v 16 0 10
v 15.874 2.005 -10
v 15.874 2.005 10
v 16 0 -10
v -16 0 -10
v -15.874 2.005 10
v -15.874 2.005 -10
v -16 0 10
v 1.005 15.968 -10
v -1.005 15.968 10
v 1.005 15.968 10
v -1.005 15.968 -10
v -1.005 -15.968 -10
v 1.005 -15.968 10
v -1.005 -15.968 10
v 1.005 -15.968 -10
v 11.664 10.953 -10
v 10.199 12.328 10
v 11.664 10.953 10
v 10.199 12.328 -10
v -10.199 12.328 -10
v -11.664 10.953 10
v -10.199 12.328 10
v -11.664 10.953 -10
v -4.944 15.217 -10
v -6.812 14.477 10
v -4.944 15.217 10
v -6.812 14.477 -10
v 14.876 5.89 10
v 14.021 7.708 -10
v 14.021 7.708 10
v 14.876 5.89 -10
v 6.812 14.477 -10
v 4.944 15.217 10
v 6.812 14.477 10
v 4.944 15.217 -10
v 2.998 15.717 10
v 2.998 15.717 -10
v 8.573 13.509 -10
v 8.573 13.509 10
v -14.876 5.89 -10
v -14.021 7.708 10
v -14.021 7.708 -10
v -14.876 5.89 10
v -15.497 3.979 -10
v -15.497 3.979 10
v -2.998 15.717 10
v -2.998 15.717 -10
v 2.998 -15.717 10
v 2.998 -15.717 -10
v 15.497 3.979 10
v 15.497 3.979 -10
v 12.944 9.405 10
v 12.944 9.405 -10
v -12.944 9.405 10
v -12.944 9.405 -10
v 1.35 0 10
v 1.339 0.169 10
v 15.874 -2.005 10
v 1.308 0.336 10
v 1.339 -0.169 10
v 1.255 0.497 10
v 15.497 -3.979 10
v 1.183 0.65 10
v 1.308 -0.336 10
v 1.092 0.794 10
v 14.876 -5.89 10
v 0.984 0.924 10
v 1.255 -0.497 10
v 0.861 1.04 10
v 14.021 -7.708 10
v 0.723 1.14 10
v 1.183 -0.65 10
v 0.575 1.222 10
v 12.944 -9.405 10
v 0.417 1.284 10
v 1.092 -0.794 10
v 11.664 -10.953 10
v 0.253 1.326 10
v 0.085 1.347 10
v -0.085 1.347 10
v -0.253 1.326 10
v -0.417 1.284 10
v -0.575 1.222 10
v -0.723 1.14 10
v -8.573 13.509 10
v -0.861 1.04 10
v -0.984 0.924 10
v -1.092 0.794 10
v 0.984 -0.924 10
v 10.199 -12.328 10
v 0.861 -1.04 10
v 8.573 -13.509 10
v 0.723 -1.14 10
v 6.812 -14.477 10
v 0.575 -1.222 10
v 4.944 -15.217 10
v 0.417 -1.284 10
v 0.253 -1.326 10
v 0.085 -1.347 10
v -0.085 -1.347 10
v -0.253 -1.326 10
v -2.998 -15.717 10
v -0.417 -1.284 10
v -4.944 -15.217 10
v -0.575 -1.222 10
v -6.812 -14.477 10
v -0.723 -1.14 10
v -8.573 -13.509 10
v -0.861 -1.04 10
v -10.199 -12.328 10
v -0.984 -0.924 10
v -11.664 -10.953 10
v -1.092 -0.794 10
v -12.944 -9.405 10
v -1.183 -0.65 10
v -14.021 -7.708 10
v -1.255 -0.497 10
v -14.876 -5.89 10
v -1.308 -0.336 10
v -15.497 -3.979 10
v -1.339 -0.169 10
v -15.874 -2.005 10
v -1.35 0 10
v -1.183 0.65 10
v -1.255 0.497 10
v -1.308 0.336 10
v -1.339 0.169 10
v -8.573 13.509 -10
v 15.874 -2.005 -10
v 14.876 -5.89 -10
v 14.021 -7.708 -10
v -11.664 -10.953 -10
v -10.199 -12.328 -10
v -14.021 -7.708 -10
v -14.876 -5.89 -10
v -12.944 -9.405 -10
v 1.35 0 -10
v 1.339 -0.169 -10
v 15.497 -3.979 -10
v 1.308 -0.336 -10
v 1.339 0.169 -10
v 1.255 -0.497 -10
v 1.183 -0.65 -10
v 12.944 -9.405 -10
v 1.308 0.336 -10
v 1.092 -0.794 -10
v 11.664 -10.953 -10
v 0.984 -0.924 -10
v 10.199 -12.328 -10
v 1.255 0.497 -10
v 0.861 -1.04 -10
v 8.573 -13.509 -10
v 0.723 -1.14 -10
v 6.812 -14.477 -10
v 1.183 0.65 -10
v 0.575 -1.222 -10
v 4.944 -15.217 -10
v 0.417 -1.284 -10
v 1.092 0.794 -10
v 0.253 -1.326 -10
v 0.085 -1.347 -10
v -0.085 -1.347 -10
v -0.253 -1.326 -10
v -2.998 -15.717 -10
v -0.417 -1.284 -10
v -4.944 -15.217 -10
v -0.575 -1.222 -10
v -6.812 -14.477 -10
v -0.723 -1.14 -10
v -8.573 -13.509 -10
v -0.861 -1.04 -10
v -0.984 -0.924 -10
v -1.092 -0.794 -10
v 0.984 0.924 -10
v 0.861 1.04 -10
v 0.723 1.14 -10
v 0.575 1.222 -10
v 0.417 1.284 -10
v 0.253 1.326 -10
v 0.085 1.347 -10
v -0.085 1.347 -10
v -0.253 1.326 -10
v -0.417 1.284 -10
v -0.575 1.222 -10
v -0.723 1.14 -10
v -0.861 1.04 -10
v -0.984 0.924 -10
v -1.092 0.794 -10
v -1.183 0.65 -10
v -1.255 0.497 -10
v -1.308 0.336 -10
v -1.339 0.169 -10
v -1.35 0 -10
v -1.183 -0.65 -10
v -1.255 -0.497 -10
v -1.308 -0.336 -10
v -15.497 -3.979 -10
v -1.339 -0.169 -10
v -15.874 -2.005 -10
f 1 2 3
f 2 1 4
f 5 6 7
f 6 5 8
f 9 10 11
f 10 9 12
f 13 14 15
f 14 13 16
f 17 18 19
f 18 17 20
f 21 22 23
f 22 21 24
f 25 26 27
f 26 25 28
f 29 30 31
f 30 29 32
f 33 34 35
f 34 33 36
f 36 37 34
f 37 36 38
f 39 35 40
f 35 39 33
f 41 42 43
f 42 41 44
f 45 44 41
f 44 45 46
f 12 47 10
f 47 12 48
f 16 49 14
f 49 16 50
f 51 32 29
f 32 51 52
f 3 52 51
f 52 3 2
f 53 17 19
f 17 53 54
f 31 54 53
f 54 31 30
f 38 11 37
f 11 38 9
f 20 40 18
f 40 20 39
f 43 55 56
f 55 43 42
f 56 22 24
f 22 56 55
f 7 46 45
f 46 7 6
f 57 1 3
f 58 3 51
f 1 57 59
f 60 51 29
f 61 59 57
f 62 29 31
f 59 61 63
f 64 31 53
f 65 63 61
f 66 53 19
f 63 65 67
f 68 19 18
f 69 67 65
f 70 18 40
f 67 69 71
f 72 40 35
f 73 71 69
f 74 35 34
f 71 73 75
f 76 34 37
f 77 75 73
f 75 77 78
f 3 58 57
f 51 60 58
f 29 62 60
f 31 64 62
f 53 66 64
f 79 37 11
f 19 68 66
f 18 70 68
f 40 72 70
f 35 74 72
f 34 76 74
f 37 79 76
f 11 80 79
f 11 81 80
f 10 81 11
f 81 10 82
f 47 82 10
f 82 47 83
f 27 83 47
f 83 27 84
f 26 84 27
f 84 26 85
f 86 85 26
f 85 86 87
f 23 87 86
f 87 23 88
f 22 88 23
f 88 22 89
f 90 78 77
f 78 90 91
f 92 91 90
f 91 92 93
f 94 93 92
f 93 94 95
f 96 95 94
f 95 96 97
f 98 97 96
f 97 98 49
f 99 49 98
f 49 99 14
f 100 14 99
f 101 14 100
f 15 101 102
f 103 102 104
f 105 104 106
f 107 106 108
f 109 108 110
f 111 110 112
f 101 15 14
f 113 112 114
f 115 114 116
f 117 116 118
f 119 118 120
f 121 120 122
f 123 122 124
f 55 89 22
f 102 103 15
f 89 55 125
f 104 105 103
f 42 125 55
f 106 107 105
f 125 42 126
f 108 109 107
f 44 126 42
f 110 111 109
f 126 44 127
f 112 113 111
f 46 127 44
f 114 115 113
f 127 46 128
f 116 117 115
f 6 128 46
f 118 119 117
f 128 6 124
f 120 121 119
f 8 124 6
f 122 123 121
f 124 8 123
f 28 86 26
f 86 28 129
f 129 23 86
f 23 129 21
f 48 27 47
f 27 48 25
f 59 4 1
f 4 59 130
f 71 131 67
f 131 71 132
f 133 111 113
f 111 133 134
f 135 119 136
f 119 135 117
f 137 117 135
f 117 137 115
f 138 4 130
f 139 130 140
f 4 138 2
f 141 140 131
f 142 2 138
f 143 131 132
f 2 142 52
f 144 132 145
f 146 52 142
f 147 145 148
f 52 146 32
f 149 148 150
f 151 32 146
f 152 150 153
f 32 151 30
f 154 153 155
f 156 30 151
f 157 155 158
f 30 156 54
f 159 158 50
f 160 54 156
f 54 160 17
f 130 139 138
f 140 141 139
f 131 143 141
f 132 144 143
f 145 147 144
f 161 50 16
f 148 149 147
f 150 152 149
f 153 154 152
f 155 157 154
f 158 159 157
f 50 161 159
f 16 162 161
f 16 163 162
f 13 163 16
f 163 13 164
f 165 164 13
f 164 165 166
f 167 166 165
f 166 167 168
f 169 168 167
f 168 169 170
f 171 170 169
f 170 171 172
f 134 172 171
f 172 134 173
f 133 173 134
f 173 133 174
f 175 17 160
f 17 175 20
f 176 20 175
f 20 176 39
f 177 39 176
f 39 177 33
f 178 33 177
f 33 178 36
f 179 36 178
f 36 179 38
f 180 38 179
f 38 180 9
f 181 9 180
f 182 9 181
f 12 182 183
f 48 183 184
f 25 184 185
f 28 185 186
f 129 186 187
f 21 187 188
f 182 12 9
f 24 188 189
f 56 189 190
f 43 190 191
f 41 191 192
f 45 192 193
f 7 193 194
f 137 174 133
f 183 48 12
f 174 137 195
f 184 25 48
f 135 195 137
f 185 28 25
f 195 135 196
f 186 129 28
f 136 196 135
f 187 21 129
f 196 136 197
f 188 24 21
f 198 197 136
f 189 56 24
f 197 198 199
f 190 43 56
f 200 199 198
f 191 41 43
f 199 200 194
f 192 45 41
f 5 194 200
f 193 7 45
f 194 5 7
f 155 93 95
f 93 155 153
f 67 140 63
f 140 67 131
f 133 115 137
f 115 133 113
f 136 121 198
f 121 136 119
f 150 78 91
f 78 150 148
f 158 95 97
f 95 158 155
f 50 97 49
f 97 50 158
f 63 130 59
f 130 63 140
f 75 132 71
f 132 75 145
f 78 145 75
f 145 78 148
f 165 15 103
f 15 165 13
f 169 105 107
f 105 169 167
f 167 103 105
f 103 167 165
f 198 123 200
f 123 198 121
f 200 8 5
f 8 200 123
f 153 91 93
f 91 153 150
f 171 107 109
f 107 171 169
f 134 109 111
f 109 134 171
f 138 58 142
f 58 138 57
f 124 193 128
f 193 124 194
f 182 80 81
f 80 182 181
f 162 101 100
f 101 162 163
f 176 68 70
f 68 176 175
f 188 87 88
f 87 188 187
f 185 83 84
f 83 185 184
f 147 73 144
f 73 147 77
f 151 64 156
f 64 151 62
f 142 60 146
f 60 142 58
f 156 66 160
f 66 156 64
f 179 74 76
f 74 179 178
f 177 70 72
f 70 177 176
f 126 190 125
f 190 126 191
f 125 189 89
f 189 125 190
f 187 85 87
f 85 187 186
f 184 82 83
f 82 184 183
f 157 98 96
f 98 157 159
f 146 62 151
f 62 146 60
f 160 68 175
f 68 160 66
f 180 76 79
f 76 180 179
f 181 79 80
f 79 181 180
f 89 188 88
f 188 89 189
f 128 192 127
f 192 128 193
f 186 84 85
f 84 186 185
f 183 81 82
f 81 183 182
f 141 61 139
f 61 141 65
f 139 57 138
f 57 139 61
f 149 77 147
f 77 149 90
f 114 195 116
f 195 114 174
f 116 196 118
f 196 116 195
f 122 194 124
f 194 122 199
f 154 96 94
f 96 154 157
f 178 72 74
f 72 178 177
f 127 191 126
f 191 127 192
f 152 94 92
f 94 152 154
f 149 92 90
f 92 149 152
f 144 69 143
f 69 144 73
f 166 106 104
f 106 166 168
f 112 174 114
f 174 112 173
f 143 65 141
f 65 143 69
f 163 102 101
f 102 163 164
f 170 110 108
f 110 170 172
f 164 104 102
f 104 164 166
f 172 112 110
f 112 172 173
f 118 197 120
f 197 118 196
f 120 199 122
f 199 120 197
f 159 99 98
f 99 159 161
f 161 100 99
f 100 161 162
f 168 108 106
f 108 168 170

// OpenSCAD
$fn = 50;


difference() {
	union() {
		translate(v = [0, 0, -10.0000000000]) {
			cylinder(h = 20, r = 16.0000000000);
		}
	}
	union() {
		translate(v = [0, 0, -100.0000000000]) {
			cylinder(h = 200, r = 1.3500000000);
		}
	}
}
